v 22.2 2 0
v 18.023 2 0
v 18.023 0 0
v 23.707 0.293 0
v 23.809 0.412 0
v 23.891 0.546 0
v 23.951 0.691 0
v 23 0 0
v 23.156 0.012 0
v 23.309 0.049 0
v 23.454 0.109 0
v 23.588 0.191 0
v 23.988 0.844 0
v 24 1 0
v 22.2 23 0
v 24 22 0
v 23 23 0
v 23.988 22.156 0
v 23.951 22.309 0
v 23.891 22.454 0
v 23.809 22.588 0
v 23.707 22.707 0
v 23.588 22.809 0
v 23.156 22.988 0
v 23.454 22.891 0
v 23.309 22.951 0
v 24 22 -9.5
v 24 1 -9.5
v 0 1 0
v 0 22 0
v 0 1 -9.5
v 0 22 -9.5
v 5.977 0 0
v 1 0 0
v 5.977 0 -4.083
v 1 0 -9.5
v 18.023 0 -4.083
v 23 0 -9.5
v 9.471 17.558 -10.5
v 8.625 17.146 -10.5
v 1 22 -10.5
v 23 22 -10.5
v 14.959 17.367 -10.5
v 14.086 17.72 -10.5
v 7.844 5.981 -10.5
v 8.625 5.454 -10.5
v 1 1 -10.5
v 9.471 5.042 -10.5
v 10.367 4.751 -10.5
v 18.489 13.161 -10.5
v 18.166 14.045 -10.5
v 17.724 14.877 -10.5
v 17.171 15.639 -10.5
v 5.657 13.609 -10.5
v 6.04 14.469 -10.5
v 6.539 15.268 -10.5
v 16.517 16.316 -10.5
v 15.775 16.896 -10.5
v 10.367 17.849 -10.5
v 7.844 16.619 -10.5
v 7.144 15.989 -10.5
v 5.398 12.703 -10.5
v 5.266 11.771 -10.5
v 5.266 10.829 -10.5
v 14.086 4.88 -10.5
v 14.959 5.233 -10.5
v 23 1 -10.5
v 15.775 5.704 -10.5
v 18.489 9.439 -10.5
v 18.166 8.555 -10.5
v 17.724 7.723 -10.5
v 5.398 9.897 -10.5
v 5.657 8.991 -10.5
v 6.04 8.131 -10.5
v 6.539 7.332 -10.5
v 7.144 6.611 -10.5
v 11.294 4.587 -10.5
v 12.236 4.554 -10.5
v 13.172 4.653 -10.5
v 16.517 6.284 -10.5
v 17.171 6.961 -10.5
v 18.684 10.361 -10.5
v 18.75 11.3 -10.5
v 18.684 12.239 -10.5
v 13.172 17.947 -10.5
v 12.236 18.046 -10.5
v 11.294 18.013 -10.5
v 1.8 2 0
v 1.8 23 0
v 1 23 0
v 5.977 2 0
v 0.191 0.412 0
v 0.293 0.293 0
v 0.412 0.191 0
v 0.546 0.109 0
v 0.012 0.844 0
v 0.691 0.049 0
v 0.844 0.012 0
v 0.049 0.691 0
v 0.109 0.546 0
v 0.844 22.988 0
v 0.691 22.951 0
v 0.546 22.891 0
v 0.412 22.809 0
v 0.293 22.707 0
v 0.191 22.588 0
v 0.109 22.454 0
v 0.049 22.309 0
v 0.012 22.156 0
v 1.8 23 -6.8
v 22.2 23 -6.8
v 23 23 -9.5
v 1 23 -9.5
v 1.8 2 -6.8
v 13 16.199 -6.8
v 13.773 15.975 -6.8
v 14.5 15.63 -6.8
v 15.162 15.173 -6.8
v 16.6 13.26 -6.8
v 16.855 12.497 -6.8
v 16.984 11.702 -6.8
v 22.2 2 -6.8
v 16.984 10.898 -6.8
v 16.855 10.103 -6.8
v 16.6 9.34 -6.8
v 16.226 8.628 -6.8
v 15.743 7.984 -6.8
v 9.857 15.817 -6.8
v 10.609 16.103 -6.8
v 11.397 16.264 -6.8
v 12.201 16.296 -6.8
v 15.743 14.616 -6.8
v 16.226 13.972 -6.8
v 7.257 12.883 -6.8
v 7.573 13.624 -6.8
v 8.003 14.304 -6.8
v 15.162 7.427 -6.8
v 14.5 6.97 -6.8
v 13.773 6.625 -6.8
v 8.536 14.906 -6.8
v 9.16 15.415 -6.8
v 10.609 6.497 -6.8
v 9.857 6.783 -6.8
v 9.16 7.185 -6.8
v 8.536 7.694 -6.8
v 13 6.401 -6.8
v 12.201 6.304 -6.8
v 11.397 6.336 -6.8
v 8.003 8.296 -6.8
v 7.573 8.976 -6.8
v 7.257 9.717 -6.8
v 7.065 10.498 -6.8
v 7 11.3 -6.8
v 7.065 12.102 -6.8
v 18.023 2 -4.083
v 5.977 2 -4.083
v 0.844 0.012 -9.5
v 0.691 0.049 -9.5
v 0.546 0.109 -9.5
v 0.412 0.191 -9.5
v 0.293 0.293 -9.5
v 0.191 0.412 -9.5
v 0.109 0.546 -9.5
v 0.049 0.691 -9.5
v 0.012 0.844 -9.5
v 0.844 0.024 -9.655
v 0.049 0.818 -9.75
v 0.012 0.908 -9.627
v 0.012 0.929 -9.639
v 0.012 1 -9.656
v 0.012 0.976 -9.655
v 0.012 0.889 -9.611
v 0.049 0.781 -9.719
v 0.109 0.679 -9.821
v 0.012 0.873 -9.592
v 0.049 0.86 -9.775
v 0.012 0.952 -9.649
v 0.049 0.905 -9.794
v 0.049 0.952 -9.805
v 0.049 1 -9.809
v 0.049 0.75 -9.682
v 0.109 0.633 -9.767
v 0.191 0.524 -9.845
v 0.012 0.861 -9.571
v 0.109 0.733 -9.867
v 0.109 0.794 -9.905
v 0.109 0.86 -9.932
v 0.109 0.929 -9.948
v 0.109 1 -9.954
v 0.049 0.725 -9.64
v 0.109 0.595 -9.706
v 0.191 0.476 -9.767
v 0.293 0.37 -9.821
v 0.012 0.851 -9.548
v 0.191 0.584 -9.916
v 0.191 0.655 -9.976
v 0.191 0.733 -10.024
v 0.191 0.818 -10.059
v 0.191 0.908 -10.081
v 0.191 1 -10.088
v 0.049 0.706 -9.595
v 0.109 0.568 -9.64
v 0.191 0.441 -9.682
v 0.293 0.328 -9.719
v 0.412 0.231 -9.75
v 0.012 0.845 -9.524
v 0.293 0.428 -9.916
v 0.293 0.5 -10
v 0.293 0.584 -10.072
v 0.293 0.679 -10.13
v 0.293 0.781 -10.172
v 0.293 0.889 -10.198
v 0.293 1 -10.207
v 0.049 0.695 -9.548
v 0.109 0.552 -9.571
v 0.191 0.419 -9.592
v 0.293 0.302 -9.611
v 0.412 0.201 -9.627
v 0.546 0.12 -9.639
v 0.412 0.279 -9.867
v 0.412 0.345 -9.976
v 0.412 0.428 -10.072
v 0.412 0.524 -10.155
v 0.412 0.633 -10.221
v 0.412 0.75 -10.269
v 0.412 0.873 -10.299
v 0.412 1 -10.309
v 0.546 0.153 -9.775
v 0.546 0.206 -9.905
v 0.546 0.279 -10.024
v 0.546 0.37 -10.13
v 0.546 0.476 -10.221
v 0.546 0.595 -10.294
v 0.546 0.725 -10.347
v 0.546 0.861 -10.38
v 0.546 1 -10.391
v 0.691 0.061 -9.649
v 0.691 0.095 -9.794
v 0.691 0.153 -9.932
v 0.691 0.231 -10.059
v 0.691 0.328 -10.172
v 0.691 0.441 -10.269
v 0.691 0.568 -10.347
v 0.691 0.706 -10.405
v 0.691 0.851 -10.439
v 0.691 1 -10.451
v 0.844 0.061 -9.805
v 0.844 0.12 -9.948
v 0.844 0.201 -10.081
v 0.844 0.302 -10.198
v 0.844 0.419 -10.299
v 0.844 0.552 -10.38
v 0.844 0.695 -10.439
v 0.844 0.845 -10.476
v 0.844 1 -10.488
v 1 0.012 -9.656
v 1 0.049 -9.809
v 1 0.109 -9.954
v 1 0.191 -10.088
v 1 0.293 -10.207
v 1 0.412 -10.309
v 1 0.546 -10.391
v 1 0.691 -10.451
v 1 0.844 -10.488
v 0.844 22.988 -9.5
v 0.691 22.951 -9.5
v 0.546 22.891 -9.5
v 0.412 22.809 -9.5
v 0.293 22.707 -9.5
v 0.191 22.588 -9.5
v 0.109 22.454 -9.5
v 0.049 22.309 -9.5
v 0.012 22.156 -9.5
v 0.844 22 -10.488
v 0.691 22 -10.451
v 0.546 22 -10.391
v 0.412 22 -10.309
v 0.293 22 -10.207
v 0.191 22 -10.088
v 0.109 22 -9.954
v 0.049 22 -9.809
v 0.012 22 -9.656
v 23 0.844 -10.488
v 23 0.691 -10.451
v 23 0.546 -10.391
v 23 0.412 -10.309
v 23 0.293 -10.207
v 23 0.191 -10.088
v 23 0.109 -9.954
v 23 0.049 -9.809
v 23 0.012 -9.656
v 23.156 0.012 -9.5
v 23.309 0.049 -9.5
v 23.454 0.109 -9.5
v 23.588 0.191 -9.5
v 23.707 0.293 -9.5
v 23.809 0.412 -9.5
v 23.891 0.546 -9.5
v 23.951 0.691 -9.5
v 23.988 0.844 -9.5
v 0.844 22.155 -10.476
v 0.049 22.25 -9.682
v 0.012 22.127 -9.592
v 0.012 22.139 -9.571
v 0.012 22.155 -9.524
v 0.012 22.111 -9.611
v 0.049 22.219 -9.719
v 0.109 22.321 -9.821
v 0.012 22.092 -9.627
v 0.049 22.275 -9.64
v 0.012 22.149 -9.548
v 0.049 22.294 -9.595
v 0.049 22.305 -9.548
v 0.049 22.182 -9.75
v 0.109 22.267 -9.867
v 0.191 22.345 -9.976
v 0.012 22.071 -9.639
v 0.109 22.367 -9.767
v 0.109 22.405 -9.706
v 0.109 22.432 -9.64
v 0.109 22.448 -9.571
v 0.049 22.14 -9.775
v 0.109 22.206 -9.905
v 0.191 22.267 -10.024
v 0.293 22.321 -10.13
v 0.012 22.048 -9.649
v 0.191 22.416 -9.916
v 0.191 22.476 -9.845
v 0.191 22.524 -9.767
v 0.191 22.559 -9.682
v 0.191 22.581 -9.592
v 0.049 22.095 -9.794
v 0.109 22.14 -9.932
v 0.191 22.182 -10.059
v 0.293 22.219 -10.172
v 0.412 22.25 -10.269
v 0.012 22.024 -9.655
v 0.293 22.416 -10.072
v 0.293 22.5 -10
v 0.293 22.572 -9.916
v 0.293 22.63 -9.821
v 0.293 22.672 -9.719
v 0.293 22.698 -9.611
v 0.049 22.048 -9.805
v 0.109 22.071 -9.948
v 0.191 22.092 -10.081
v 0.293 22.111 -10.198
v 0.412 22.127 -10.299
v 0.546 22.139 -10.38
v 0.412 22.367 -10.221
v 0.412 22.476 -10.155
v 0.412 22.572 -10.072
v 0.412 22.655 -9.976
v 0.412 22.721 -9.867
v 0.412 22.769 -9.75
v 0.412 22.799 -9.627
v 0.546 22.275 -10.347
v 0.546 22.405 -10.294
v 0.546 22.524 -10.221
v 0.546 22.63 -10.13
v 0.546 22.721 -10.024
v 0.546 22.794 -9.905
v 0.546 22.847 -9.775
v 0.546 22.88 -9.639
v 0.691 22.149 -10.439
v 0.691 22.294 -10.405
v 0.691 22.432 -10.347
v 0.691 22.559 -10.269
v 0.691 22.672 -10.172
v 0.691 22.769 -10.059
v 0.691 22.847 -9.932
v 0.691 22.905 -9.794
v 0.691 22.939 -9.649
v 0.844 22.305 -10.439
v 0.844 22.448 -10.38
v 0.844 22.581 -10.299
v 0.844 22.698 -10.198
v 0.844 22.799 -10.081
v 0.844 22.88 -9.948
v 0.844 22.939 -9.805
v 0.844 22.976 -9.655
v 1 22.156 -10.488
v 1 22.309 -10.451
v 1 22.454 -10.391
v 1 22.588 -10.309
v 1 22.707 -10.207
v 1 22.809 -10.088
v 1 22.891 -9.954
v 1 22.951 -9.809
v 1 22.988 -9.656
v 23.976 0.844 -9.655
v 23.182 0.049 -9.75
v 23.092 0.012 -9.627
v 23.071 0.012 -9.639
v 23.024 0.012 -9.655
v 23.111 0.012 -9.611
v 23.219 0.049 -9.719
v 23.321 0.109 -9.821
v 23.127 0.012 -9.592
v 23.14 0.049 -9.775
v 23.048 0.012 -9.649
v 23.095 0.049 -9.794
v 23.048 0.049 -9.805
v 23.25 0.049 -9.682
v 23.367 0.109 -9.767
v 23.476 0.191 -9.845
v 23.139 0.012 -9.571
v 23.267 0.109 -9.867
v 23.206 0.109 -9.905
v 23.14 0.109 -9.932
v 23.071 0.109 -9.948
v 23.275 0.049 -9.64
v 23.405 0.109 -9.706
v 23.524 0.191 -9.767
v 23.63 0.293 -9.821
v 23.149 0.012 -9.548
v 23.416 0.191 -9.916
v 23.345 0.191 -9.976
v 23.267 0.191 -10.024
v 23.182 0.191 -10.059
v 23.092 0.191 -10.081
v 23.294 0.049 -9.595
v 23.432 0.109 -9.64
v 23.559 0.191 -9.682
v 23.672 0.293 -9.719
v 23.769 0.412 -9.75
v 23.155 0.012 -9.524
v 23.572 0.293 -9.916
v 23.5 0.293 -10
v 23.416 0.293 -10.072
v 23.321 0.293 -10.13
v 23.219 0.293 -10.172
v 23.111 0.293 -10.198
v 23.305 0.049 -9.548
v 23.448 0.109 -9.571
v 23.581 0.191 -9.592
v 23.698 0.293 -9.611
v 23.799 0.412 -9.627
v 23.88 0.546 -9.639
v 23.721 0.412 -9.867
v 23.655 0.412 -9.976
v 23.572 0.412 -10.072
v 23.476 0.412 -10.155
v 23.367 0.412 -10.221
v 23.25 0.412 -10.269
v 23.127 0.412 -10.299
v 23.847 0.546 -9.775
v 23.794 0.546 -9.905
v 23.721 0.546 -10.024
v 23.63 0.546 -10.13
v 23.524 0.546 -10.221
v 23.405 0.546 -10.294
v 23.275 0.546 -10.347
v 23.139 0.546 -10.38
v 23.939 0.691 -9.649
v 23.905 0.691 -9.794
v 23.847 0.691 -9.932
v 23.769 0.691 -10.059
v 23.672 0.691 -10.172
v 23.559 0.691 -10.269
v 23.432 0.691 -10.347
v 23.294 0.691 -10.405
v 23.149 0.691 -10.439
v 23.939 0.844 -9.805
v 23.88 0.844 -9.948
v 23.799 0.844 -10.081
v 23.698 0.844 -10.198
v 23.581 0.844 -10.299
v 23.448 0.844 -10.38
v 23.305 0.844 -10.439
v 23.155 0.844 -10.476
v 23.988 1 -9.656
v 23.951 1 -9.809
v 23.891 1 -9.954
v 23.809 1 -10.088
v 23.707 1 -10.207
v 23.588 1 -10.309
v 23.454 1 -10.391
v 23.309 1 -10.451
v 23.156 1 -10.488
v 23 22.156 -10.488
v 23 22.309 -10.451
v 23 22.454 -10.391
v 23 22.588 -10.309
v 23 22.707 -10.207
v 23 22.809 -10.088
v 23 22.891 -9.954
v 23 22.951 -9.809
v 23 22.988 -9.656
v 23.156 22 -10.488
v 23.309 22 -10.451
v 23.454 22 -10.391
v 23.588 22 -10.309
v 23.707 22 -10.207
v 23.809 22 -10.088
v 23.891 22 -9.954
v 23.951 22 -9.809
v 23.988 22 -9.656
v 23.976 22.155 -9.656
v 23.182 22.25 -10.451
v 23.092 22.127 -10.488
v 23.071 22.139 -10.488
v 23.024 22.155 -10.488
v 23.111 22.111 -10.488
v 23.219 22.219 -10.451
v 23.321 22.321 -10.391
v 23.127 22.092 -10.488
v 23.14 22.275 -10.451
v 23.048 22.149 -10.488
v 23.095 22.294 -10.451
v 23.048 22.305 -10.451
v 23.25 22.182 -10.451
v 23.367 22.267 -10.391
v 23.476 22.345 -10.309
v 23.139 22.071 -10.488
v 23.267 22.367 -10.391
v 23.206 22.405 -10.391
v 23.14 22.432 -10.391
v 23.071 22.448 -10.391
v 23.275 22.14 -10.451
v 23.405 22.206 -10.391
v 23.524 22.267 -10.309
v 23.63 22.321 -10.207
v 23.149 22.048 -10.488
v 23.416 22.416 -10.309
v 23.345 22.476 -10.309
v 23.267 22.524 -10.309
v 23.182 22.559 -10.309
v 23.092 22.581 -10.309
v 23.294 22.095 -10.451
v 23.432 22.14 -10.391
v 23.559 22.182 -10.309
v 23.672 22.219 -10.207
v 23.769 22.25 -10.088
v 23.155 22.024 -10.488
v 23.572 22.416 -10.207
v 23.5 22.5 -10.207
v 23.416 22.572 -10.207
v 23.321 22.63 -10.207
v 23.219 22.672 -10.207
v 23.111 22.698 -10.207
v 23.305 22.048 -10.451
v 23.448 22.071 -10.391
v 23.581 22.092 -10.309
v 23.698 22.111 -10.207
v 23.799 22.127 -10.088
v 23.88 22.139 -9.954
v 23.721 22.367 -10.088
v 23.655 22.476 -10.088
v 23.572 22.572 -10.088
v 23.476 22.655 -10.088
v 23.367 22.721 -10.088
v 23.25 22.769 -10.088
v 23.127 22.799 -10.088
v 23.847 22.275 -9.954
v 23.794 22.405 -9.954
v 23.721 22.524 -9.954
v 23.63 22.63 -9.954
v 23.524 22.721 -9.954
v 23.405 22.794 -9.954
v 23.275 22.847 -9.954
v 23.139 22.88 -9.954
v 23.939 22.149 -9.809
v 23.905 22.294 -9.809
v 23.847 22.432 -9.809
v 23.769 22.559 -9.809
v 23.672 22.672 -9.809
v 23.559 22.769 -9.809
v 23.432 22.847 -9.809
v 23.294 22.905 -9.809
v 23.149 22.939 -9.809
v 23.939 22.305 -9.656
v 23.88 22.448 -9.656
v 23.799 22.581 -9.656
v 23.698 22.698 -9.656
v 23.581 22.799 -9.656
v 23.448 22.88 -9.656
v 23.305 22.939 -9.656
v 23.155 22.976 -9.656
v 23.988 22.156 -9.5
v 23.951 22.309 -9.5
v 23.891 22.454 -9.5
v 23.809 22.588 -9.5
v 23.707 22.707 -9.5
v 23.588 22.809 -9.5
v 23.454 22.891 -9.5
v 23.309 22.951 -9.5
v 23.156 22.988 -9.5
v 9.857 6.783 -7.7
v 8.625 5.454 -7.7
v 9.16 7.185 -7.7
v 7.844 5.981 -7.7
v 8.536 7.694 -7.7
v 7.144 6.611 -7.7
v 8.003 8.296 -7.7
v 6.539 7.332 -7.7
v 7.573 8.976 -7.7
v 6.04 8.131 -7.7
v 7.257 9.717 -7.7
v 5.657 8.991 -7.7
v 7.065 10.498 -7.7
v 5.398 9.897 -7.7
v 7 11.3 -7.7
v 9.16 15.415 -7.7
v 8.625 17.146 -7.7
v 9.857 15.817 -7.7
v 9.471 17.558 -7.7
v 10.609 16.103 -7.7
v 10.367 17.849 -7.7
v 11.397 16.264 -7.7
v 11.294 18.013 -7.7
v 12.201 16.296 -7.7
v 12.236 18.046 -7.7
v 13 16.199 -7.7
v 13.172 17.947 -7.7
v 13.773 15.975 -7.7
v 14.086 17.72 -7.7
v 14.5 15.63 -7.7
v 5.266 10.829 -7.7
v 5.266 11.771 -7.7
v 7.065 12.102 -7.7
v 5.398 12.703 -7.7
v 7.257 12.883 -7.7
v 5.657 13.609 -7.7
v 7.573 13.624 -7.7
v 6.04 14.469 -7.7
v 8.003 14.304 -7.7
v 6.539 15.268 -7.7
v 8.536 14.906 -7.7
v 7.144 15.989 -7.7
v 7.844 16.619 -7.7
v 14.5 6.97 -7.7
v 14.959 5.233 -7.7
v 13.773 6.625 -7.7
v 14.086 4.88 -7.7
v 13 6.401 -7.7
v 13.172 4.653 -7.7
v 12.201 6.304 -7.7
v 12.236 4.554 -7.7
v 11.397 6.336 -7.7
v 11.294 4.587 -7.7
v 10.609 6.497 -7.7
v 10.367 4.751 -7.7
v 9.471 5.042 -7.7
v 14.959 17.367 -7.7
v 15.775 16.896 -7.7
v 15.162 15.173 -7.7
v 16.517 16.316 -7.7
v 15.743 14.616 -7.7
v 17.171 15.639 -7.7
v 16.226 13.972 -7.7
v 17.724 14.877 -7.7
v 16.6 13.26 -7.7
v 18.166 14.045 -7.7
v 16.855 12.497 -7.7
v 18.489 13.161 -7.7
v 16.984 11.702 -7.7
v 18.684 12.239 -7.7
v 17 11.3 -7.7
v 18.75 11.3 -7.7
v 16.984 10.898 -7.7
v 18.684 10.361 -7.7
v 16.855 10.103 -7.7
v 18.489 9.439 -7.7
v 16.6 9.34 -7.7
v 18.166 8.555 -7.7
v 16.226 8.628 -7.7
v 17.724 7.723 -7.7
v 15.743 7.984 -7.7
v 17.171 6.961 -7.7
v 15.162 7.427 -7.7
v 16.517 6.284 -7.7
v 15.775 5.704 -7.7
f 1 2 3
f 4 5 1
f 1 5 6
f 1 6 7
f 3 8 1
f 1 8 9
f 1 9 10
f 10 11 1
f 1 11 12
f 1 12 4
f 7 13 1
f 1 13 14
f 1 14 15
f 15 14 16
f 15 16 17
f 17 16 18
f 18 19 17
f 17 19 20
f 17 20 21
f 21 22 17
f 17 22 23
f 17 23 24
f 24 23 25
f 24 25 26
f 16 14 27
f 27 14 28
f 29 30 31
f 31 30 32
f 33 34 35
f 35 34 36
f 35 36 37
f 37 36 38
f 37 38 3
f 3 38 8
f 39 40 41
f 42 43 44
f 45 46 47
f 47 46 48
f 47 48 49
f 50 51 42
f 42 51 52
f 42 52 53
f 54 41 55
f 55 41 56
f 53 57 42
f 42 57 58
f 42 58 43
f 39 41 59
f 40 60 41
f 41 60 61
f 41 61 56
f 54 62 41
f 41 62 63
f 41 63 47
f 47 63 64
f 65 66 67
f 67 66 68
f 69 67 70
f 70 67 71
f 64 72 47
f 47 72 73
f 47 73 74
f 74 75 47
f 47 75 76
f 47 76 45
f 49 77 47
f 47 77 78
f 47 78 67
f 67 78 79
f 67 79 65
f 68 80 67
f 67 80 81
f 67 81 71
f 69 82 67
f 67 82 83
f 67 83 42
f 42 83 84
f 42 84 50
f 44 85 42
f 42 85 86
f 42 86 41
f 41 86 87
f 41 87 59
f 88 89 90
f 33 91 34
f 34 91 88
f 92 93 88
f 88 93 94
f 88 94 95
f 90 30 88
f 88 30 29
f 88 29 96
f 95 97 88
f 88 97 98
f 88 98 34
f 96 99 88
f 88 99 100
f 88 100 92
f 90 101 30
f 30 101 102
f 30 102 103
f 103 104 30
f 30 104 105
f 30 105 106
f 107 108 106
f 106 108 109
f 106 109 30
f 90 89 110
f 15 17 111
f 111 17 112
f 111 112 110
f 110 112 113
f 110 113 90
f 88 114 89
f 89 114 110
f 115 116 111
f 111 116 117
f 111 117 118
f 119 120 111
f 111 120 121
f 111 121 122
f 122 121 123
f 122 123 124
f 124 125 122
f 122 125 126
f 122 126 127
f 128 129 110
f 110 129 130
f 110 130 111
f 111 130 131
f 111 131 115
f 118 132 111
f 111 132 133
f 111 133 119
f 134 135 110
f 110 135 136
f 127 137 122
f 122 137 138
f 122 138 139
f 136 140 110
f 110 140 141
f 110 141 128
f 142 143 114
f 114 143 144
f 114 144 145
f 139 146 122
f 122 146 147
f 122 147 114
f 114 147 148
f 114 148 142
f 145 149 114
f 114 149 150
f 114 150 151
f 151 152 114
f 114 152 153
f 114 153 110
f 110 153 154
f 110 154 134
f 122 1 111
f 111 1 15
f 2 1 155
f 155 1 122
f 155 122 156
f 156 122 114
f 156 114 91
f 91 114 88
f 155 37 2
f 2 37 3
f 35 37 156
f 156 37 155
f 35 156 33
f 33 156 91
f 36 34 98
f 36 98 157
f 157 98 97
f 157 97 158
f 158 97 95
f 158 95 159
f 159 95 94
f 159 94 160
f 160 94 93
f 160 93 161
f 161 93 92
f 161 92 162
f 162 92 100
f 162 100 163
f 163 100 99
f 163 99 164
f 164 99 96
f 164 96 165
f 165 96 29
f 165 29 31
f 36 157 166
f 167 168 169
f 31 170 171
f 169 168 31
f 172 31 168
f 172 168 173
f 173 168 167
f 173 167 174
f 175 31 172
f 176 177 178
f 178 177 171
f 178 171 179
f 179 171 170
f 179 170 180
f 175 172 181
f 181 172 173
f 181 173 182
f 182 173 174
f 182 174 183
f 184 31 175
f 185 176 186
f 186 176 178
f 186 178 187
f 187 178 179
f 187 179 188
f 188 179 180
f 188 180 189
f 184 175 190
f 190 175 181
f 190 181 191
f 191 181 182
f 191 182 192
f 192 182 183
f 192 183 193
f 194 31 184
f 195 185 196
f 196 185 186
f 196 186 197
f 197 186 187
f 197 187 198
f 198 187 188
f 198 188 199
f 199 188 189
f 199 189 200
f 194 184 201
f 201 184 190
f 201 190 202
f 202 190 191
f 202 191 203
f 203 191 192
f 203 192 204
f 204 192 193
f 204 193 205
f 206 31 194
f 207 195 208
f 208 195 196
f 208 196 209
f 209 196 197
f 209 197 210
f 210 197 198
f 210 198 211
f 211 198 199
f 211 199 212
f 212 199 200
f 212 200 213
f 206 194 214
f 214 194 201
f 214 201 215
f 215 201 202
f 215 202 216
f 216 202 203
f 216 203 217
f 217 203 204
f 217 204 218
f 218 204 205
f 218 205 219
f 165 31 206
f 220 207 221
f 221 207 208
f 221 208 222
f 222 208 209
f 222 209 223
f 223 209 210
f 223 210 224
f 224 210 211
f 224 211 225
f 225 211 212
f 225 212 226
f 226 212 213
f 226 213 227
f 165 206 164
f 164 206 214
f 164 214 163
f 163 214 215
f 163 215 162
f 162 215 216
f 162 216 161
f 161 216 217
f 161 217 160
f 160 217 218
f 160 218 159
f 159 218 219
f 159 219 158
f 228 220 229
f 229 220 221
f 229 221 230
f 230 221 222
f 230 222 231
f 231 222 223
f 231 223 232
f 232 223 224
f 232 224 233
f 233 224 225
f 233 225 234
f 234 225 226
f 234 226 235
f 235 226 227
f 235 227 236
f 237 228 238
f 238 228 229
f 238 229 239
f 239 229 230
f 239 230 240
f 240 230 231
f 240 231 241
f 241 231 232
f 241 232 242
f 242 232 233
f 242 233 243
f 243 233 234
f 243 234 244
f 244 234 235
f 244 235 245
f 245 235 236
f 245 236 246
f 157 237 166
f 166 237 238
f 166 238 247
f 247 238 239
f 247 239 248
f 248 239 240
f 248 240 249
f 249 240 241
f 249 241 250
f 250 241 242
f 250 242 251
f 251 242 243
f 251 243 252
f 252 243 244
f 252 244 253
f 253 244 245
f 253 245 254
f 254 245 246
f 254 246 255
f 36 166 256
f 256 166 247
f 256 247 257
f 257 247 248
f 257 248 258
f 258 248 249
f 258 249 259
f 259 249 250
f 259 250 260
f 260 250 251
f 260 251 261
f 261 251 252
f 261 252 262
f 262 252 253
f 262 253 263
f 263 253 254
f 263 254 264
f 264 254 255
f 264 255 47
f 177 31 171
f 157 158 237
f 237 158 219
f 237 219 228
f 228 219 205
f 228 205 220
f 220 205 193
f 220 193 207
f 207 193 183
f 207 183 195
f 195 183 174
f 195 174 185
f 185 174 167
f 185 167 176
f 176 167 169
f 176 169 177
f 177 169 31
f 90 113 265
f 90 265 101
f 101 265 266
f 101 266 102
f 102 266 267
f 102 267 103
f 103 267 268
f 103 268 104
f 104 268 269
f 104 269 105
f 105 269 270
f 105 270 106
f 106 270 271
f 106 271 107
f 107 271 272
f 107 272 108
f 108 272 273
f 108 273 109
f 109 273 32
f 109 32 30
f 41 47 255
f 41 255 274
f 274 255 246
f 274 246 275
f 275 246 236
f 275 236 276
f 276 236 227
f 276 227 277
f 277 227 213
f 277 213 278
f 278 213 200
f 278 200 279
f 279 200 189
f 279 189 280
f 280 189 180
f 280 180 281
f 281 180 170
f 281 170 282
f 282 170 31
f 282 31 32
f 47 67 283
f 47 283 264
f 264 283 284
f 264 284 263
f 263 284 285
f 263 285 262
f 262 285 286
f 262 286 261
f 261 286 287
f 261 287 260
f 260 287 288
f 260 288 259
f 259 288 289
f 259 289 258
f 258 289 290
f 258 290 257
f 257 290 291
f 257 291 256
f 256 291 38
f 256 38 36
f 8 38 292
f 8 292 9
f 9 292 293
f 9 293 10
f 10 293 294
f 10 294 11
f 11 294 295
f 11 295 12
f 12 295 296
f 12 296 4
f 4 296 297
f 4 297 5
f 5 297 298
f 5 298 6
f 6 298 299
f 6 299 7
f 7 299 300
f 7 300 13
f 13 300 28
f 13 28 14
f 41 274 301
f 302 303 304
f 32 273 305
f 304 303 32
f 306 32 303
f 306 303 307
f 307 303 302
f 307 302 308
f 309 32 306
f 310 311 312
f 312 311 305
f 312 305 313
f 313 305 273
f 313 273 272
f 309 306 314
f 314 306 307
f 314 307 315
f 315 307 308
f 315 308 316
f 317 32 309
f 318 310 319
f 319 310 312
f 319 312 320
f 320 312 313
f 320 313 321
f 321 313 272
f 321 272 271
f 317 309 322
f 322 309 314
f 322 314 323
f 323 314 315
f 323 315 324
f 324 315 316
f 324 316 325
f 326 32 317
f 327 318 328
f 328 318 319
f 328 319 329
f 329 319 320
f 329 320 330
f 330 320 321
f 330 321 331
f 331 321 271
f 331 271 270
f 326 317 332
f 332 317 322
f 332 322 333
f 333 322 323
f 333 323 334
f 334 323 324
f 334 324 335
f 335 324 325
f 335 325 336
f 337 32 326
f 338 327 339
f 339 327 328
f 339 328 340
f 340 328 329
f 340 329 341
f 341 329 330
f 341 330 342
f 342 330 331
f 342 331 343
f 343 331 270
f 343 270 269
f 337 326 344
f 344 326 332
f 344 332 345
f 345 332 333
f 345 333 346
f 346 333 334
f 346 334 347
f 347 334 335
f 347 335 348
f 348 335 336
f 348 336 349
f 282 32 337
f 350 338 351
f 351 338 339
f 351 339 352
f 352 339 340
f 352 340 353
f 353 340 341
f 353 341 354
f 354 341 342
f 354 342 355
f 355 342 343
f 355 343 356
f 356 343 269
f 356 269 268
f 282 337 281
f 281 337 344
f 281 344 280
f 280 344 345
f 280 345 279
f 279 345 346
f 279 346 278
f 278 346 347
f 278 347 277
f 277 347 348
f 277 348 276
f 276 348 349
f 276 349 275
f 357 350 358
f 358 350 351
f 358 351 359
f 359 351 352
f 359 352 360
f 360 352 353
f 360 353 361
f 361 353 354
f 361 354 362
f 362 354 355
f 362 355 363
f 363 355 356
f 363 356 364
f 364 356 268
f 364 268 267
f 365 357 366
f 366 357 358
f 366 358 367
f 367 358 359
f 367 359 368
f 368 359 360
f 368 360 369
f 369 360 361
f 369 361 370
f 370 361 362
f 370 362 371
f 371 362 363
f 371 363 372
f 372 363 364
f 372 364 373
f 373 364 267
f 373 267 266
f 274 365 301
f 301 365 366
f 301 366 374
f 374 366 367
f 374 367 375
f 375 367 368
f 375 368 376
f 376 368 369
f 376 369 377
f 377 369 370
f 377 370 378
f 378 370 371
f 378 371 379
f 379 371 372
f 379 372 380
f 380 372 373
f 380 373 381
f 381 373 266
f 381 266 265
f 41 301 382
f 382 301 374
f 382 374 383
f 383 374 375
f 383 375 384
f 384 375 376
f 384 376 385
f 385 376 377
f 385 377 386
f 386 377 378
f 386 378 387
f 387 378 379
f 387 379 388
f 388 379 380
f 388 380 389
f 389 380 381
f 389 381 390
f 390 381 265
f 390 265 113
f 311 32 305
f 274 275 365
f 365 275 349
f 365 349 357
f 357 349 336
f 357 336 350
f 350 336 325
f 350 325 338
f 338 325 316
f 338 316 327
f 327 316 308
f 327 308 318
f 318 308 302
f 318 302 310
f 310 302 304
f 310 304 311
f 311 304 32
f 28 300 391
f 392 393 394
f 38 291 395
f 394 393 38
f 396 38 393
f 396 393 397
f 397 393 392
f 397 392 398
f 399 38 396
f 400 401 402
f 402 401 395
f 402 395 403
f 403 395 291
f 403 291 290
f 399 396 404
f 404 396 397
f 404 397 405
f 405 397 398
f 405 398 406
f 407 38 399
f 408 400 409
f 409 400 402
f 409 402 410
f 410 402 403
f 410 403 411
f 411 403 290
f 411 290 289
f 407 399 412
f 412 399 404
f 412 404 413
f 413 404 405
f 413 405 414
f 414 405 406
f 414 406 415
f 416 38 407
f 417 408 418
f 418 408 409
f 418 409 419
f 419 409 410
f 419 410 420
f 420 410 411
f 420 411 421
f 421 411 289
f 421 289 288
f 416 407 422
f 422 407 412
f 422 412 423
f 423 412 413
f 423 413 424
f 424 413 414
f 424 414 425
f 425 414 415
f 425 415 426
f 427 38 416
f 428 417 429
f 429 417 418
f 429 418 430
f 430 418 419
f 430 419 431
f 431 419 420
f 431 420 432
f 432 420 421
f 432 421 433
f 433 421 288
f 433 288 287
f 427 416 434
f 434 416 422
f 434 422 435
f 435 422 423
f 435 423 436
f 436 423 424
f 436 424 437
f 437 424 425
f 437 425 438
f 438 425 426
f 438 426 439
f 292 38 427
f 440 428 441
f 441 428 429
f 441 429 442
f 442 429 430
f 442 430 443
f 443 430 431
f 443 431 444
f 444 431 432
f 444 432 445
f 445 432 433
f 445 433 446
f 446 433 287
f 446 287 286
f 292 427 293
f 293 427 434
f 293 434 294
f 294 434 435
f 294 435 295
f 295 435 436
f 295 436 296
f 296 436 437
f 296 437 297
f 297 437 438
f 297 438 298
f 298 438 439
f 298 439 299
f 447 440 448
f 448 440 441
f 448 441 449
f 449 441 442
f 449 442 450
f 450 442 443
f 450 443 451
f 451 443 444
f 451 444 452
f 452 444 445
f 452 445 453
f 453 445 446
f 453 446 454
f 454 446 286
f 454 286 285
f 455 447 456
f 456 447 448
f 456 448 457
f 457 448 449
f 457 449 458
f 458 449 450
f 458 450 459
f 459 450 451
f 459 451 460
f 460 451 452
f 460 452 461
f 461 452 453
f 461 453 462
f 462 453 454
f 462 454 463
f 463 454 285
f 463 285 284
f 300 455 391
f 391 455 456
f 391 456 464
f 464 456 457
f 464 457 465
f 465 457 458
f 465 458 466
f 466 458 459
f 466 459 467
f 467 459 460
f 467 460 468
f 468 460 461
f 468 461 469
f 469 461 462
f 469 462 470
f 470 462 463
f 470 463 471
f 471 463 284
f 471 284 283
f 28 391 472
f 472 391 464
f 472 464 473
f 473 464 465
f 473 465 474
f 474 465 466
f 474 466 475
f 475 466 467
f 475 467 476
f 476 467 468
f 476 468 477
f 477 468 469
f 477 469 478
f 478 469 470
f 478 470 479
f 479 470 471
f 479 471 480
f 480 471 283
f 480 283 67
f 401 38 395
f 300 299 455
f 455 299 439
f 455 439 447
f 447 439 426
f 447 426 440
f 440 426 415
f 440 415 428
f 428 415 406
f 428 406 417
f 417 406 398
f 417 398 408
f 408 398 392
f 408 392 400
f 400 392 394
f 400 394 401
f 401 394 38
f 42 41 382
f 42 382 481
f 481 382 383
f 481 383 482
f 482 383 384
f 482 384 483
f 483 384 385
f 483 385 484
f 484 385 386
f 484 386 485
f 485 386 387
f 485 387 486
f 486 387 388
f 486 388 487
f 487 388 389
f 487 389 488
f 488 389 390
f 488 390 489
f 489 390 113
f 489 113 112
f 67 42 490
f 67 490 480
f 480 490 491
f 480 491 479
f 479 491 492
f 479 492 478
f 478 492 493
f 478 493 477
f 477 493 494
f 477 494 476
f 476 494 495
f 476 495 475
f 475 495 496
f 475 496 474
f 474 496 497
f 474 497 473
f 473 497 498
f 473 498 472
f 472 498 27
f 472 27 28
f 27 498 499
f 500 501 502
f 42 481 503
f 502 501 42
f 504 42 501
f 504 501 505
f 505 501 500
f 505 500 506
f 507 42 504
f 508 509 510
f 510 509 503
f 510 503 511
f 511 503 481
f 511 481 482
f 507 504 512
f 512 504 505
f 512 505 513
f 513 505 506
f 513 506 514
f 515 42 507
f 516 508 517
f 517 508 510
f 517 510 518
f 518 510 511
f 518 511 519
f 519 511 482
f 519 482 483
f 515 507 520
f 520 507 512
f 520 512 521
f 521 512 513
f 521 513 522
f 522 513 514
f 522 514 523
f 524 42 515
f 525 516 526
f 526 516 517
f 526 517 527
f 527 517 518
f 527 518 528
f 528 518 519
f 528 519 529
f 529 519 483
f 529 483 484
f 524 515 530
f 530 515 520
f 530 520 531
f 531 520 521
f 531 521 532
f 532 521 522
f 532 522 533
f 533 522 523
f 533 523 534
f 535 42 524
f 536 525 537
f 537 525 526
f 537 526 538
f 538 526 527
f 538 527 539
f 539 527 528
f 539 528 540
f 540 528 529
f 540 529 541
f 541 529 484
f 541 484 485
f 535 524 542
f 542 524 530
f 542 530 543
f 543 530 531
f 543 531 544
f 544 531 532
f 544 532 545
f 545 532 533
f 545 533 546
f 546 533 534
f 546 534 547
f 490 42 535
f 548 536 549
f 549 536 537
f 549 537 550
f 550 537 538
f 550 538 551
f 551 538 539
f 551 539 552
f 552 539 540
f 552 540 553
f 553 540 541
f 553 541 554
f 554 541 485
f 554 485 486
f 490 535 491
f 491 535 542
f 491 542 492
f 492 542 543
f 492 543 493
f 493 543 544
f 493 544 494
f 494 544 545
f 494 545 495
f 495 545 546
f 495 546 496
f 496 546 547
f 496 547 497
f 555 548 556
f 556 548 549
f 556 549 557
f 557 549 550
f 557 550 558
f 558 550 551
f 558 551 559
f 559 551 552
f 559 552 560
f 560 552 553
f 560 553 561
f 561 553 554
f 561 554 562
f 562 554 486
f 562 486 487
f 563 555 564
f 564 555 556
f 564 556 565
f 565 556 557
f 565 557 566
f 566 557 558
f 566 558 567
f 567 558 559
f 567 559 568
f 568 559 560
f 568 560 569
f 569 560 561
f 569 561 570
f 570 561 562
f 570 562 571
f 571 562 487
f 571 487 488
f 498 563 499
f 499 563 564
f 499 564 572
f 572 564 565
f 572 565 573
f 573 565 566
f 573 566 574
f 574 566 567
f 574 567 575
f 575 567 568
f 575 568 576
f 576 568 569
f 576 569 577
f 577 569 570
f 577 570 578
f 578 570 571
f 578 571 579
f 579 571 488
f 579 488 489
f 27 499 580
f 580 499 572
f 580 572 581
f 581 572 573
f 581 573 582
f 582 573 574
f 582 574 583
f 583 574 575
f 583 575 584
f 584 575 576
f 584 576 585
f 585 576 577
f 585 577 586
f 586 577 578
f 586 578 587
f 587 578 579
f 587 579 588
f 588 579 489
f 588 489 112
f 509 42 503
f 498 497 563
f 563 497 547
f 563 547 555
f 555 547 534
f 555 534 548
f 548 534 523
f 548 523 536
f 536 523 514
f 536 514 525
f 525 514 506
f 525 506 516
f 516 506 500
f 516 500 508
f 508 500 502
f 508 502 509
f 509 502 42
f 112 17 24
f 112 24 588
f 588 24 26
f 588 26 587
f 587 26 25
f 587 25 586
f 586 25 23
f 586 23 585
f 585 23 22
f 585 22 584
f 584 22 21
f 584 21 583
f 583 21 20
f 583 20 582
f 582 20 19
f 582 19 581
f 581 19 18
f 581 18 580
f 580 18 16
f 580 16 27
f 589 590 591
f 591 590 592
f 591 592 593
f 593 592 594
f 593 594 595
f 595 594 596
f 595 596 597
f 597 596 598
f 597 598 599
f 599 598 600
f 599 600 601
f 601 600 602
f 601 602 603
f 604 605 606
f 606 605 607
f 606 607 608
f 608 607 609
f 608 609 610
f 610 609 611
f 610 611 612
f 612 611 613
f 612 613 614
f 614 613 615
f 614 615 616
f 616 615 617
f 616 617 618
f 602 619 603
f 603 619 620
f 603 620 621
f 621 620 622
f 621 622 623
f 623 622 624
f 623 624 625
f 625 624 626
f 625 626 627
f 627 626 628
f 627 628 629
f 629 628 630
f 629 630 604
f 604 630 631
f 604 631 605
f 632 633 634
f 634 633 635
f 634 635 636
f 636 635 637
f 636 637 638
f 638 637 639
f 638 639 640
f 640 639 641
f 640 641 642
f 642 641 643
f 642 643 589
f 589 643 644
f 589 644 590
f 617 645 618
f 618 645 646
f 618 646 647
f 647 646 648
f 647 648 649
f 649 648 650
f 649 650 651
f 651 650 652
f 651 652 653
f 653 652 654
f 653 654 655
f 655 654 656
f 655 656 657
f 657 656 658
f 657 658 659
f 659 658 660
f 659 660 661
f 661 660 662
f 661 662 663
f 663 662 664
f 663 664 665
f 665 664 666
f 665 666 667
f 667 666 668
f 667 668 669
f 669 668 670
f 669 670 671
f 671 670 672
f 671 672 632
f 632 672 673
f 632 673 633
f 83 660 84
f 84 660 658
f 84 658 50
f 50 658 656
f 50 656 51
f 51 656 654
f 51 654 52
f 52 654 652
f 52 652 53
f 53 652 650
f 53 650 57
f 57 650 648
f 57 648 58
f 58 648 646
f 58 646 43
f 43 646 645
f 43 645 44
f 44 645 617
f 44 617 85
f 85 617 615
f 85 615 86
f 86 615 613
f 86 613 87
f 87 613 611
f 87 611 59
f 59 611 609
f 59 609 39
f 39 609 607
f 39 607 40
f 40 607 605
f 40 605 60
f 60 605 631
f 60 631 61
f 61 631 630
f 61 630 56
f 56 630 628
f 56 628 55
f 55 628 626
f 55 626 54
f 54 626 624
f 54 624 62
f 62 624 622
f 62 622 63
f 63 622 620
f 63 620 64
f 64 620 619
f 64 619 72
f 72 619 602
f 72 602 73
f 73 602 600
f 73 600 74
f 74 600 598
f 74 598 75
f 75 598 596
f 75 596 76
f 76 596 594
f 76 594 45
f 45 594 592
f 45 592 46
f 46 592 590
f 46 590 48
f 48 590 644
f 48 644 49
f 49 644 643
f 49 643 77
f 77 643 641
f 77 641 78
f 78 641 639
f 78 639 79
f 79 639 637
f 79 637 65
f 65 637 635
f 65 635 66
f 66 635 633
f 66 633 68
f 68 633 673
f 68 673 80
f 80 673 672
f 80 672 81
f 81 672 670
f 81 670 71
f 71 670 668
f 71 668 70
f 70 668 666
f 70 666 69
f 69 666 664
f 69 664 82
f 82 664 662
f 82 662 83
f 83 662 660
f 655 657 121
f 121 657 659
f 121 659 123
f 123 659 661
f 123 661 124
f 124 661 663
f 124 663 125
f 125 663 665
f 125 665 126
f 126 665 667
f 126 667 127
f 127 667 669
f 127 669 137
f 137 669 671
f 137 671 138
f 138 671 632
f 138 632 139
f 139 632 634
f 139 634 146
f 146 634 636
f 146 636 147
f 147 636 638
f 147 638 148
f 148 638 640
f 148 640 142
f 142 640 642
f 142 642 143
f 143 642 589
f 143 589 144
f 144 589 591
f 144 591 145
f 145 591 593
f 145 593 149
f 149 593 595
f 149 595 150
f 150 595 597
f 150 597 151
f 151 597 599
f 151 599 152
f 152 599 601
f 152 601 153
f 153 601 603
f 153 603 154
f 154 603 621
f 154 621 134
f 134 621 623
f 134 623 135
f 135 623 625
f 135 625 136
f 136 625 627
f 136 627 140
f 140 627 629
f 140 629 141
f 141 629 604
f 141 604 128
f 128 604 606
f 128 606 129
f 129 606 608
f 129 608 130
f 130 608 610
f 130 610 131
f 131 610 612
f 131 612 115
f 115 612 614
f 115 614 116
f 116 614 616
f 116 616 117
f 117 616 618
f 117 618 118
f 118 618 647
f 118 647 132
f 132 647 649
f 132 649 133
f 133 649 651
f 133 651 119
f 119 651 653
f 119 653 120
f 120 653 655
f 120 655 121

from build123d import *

# Parameters (mm, degrees)
EXTRUDE_1_DEPTH         = 24
SKETCH_2_W              = 20.4
SKETCH_2_H              = 6.8
CUT_EXTRUDE_1_DEPTH     = 21
CUT_EXTRUDE_2_REACH     = 36.86
SKETCH_3_W              = 12.046070068
SKETCH_3_H              = 8.16612352
FILLET_1_R              = 1
CUT_EXTRUDE_START       = -10.5
CUT_EXTRUDE_3_OUTLINE_R = 6.75
CUT_EXTRUDE_3_DEPTH     = 2.8
CUT_EXTRUDE_START_2     = -7.7
CUT_EXTRUDE_4_OUTLINE_R = 5
CUT_EXTRUDE_4_DEPTH     = 0.9


# Read off the part's stored shape, not the designer's step: the extrude step, the extrude step
with BuildPart() as part:
    # Sketch 3D_1 → Extrude 1 (new body)
    with BuildSketch(Plane(origin=(0, 0, 0), x_dir=(0, 0.909688003863034, -0.41529234958964595), z_dir=(1, 0, 0))):
        Polygon((0, 0), (20.922824089, 9.551724041), (25.28339376, 0), (4.360569671, -9.551724041), align=None)
    extrude(amount=EXTRUDE_1_DEPTH)

    # Sketch 2 → Cut-Extrude 1 (cut)
    with BuildSketch(Plane(origin=(0, 23, 0), x_dir=(1, 0, 0), z_dir=(0, 1, 0))):
        with Locations((12, 3.4)):
            Rectangle(SKETCH_2_W, SKETCH_2_H)
    extrude(amount=-CUT_EXTRUDE_1_DEPTH, mode=Mode.SUBTRACT)

    # Sketch 3 → Cut-Extrude 2 (cut, up to next)
    with BuildSketch(Plane.XZ, mode=Mode.PRIVATE) as cut_extrude_2_sk1:
        with Locations((12, 0)):
            Rectangle(SKETCH_3_W, SKETCH_3_H)
    cut_extrude_2_tool1 = extrude(cut_extrude_2_sk1.sketch, amount=-CUT_EXTRUDE_2_REACH, mode=Mode.PRIVATE) & part.part
    add(cut_extrude_2_tool1.solids().sort_by_distance((12, 0, 0))[0], mode=Mode.SUBTRACT)

    # Fillet 1
    fillet_1_edges = [part.edges().sort_by_distance(p)[0] for p in [
        (24, 23, -5.25),
        (24, 0, -5.25),
        (24, 11.5, -10.5),
        (12, 0, -10.5),
        (0, 0, -5.25),
        (0, 11.5, -10.5),
        (12, 23, -10.5),
        (0, 23, -5.25),
    ]]
    fillet(fillet_1_edges, radius=FILLET_1_R)

    # Cut-Extrude 3 outline → Cut-Extrude 3 (cut)
    with BuildSketch(Plane.XY.offset(CUT_EXTRUDE_START)):
        with Locations((12, 11.3)):
            Circle(CUT_EXTRUDE_3_OUTLINE_R)
    extrude(amount=CUT_EXTRUDE_3_DEPTH, mode=Mode.SUBTRACT)

    # Cut-Extrude 4 outline → Cut-Extrude 4 (cut)
    with BuildSketch(Plane.XY.offset(CUT_EXTRUDE_START_2)):
        with Locations((12, 11.3)):
            Circle(CUT_EXTRUDE_4_OUTLINE_R)
    extrude(amount=CUT_EXTRUDE_4_DEPTH, mode=Mode.SUBTRACT)


solid = part.part
